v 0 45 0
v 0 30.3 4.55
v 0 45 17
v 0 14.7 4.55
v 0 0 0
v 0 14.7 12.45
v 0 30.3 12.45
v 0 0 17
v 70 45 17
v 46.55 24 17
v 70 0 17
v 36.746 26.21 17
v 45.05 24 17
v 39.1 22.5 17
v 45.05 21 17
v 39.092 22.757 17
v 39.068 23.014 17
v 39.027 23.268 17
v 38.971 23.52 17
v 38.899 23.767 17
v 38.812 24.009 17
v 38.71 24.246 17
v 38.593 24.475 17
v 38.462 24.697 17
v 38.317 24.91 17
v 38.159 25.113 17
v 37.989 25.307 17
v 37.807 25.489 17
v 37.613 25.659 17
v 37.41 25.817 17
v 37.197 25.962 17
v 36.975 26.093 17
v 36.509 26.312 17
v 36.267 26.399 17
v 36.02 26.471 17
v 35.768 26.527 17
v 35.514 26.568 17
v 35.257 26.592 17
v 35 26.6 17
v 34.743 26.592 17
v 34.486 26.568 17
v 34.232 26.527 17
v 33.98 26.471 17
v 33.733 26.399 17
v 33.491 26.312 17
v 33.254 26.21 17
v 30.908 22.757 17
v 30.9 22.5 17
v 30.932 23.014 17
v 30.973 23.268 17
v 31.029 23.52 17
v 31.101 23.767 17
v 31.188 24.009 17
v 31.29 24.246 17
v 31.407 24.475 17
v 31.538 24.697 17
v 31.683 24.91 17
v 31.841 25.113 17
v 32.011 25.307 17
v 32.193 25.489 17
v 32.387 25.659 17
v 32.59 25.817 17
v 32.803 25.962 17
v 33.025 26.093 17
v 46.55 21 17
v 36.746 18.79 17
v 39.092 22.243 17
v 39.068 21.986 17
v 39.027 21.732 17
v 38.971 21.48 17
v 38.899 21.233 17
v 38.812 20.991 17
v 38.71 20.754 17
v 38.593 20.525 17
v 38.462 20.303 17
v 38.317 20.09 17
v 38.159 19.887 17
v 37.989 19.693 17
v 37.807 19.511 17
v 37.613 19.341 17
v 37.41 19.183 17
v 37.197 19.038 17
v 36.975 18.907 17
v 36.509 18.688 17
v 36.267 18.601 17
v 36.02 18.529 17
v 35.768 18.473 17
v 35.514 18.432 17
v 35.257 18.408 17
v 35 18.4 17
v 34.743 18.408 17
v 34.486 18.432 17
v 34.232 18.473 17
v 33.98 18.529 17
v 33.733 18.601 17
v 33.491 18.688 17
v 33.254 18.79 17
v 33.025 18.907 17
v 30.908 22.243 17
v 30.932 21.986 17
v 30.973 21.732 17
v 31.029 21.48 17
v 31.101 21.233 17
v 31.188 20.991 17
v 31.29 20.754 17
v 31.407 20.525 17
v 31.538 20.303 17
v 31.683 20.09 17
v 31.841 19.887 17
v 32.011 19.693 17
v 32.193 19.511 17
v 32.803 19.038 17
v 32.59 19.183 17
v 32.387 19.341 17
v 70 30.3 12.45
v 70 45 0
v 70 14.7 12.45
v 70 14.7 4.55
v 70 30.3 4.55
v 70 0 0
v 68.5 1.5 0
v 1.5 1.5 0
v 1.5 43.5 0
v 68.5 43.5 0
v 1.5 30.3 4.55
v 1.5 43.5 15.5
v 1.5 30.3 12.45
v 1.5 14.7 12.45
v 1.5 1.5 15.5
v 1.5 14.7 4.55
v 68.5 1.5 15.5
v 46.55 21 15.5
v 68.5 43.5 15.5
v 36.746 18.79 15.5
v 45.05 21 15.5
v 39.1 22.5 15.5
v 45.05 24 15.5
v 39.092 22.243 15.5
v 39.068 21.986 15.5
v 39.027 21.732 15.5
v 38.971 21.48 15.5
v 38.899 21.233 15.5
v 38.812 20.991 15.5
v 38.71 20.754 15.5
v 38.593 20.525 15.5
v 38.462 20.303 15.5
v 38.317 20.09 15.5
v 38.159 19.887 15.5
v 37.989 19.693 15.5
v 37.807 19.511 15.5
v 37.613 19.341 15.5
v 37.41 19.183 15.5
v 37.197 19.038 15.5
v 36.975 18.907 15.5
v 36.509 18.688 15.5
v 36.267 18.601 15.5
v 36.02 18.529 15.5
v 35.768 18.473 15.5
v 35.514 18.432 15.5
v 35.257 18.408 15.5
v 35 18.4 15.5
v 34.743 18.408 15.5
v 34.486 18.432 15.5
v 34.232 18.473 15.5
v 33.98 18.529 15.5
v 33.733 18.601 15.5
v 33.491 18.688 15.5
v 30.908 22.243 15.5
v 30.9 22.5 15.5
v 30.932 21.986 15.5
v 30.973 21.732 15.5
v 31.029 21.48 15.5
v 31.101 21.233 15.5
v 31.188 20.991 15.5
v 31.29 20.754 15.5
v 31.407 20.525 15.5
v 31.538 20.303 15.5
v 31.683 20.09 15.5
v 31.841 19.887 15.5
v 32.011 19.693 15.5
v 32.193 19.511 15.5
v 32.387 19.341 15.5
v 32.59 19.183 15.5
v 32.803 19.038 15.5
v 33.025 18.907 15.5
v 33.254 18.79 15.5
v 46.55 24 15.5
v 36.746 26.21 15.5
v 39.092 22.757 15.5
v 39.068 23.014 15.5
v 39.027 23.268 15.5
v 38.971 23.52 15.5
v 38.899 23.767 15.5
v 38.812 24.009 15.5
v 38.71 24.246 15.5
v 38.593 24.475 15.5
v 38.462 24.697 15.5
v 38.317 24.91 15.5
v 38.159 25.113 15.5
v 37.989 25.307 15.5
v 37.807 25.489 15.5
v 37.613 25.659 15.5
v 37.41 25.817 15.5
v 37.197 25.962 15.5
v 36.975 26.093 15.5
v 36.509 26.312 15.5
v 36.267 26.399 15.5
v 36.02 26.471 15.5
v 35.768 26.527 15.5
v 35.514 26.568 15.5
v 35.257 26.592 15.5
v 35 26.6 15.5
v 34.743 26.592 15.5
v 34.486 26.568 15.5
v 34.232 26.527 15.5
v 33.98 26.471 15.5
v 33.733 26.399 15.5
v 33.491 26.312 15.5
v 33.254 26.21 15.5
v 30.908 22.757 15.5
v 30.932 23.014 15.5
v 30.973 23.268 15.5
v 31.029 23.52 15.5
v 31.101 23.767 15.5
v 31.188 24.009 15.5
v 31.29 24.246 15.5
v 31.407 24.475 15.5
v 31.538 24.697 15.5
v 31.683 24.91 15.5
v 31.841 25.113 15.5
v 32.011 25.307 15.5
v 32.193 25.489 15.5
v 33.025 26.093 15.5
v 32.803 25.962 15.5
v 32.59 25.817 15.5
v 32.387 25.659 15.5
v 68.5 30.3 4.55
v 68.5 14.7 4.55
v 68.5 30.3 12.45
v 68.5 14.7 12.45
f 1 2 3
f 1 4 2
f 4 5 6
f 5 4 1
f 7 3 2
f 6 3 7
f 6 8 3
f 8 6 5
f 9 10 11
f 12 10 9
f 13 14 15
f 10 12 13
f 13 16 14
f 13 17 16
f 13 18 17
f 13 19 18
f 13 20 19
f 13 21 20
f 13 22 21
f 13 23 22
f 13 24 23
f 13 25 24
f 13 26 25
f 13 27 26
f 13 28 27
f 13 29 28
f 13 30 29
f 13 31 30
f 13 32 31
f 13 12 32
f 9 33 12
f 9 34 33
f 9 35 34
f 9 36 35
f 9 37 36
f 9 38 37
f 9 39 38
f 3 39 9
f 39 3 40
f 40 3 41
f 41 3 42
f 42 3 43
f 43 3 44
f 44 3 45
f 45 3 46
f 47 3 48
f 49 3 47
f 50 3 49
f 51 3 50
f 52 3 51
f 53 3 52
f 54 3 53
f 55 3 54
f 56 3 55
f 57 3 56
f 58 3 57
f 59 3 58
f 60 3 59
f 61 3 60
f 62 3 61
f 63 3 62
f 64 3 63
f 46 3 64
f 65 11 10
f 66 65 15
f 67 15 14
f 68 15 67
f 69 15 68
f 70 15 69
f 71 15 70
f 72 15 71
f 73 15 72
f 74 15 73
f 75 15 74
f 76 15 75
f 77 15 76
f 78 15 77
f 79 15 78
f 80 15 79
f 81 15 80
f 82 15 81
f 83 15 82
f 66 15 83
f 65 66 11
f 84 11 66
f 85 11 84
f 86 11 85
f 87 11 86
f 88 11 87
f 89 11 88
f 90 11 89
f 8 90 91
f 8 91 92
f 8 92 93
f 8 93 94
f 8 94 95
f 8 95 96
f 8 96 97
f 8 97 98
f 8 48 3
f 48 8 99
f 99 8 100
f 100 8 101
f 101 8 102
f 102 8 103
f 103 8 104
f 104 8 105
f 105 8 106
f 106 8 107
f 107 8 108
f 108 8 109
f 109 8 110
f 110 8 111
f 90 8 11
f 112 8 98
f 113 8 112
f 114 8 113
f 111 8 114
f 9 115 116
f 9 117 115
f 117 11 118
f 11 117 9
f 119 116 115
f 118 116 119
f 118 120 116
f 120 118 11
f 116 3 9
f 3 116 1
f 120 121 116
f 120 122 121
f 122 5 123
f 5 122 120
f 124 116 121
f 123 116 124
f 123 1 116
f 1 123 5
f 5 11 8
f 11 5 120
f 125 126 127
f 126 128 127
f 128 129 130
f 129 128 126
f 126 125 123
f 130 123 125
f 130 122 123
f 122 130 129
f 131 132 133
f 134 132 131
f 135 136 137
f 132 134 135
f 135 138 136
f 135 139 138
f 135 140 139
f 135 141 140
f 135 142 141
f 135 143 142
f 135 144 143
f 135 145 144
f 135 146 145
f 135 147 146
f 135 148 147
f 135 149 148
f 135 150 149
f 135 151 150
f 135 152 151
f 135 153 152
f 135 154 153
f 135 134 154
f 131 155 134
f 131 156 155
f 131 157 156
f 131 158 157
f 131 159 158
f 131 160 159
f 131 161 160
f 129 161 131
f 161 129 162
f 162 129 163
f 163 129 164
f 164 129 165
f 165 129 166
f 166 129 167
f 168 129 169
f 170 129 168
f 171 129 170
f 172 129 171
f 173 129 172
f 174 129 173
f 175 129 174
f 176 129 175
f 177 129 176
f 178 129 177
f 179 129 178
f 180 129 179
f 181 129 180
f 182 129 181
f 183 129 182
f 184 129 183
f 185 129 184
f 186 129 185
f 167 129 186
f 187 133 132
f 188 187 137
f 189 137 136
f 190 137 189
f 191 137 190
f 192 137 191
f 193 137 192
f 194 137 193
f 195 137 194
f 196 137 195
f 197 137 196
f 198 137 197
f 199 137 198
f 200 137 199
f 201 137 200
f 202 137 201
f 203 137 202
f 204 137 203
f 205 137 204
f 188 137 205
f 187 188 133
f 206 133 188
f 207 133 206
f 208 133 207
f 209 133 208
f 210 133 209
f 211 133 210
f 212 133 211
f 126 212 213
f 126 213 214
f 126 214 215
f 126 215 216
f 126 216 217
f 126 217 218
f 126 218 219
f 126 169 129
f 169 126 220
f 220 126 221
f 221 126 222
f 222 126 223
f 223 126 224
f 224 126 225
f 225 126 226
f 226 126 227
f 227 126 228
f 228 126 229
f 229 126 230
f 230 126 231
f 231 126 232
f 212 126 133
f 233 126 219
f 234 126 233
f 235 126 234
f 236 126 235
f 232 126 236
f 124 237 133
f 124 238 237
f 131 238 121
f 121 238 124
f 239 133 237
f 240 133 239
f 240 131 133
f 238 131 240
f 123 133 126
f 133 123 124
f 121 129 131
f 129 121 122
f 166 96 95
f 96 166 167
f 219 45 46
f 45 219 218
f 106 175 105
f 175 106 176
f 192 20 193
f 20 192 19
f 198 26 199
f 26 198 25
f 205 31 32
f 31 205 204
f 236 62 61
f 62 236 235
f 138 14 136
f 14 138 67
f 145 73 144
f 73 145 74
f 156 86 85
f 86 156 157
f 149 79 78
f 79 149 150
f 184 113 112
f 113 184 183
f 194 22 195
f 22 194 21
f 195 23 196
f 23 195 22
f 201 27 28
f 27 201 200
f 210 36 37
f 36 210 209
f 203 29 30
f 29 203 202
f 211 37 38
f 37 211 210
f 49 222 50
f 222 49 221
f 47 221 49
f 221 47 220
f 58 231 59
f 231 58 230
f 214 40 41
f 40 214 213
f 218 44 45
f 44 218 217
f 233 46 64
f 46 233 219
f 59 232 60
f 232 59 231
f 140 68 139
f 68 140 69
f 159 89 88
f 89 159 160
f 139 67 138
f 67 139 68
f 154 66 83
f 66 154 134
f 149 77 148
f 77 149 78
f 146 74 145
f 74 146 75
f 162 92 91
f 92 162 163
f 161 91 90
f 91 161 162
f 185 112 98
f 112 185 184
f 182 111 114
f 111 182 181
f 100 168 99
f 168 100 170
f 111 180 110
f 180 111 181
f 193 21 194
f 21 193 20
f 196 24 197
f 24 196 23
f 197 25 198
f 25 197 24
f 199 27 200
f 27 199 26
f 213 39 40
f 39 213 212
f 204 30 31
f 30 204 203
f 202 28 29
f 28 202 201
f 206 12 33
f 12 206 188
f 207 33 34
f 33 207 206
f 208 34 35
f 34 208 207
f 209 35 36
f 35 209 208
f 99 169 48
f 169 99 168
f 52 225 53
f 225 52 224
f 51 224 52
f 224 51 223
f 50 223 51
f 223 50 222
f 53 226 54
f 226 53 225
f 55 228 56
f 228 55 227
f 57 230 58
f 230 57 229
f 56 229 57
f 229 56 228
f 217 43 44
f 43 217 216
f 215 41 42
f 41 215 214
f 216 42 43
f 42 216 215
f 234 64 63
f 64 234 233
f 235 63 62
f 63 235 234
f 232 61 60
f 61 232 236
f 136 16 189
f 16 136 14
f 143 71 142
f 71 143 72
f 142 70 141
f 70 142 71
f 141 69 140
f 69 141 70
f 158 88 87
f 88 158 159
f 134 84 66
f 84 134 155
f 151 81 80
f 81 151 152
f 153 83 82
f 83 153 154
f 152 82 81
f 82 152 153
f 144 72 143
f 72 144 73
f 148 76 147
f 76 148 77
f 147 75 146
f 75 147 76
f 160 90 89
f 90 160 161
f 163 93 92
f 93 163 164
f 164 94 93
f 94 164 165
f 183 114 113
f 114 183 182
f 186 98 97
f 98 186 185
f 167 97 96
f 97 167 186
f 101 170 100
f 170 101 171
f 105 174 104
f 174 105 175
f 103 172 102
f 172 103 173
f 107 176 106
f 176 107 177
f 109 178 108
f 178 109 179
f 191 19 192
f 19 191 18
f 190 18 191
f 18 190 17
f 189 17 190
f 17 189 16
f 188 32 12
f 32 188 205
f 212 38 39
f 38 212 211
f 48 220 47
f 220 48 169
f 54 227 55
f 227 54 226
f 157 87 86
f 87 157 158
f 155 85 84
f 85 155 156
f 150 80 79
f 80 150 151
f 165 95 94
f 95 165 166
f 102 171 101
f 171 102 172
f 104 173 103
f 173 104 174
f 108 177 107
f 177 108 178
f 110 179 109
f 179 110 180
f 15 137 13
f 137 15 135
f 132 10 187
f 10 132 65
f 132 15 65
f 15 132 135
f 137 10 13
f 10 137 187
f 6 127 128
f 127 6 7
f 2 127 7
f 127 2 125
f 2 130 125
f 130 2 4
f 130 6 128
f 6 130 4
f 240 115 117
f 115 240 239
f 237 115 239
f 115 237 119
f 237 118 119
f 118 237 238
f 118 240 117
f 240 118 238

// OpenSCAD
$fn=100;
xtw=15.6;
xth=7.9;
difference(){
    cube([70,45,17]);
    translate([1.5,1.5,0]) cube([67,42,15.5]);
    translate([70/2,45/2,0]) cylinder(h=17, d=8.2);
    translate([(70/2)+11.55-(1.5/2),45/2,0]) cube([1.5,3,17*2], true);
    translate([0,45/2,17/2]) cube([4,xtw,xth],true);
    translate([70,45/2,17/2]) cube([4,xtw,xth],true);
}
